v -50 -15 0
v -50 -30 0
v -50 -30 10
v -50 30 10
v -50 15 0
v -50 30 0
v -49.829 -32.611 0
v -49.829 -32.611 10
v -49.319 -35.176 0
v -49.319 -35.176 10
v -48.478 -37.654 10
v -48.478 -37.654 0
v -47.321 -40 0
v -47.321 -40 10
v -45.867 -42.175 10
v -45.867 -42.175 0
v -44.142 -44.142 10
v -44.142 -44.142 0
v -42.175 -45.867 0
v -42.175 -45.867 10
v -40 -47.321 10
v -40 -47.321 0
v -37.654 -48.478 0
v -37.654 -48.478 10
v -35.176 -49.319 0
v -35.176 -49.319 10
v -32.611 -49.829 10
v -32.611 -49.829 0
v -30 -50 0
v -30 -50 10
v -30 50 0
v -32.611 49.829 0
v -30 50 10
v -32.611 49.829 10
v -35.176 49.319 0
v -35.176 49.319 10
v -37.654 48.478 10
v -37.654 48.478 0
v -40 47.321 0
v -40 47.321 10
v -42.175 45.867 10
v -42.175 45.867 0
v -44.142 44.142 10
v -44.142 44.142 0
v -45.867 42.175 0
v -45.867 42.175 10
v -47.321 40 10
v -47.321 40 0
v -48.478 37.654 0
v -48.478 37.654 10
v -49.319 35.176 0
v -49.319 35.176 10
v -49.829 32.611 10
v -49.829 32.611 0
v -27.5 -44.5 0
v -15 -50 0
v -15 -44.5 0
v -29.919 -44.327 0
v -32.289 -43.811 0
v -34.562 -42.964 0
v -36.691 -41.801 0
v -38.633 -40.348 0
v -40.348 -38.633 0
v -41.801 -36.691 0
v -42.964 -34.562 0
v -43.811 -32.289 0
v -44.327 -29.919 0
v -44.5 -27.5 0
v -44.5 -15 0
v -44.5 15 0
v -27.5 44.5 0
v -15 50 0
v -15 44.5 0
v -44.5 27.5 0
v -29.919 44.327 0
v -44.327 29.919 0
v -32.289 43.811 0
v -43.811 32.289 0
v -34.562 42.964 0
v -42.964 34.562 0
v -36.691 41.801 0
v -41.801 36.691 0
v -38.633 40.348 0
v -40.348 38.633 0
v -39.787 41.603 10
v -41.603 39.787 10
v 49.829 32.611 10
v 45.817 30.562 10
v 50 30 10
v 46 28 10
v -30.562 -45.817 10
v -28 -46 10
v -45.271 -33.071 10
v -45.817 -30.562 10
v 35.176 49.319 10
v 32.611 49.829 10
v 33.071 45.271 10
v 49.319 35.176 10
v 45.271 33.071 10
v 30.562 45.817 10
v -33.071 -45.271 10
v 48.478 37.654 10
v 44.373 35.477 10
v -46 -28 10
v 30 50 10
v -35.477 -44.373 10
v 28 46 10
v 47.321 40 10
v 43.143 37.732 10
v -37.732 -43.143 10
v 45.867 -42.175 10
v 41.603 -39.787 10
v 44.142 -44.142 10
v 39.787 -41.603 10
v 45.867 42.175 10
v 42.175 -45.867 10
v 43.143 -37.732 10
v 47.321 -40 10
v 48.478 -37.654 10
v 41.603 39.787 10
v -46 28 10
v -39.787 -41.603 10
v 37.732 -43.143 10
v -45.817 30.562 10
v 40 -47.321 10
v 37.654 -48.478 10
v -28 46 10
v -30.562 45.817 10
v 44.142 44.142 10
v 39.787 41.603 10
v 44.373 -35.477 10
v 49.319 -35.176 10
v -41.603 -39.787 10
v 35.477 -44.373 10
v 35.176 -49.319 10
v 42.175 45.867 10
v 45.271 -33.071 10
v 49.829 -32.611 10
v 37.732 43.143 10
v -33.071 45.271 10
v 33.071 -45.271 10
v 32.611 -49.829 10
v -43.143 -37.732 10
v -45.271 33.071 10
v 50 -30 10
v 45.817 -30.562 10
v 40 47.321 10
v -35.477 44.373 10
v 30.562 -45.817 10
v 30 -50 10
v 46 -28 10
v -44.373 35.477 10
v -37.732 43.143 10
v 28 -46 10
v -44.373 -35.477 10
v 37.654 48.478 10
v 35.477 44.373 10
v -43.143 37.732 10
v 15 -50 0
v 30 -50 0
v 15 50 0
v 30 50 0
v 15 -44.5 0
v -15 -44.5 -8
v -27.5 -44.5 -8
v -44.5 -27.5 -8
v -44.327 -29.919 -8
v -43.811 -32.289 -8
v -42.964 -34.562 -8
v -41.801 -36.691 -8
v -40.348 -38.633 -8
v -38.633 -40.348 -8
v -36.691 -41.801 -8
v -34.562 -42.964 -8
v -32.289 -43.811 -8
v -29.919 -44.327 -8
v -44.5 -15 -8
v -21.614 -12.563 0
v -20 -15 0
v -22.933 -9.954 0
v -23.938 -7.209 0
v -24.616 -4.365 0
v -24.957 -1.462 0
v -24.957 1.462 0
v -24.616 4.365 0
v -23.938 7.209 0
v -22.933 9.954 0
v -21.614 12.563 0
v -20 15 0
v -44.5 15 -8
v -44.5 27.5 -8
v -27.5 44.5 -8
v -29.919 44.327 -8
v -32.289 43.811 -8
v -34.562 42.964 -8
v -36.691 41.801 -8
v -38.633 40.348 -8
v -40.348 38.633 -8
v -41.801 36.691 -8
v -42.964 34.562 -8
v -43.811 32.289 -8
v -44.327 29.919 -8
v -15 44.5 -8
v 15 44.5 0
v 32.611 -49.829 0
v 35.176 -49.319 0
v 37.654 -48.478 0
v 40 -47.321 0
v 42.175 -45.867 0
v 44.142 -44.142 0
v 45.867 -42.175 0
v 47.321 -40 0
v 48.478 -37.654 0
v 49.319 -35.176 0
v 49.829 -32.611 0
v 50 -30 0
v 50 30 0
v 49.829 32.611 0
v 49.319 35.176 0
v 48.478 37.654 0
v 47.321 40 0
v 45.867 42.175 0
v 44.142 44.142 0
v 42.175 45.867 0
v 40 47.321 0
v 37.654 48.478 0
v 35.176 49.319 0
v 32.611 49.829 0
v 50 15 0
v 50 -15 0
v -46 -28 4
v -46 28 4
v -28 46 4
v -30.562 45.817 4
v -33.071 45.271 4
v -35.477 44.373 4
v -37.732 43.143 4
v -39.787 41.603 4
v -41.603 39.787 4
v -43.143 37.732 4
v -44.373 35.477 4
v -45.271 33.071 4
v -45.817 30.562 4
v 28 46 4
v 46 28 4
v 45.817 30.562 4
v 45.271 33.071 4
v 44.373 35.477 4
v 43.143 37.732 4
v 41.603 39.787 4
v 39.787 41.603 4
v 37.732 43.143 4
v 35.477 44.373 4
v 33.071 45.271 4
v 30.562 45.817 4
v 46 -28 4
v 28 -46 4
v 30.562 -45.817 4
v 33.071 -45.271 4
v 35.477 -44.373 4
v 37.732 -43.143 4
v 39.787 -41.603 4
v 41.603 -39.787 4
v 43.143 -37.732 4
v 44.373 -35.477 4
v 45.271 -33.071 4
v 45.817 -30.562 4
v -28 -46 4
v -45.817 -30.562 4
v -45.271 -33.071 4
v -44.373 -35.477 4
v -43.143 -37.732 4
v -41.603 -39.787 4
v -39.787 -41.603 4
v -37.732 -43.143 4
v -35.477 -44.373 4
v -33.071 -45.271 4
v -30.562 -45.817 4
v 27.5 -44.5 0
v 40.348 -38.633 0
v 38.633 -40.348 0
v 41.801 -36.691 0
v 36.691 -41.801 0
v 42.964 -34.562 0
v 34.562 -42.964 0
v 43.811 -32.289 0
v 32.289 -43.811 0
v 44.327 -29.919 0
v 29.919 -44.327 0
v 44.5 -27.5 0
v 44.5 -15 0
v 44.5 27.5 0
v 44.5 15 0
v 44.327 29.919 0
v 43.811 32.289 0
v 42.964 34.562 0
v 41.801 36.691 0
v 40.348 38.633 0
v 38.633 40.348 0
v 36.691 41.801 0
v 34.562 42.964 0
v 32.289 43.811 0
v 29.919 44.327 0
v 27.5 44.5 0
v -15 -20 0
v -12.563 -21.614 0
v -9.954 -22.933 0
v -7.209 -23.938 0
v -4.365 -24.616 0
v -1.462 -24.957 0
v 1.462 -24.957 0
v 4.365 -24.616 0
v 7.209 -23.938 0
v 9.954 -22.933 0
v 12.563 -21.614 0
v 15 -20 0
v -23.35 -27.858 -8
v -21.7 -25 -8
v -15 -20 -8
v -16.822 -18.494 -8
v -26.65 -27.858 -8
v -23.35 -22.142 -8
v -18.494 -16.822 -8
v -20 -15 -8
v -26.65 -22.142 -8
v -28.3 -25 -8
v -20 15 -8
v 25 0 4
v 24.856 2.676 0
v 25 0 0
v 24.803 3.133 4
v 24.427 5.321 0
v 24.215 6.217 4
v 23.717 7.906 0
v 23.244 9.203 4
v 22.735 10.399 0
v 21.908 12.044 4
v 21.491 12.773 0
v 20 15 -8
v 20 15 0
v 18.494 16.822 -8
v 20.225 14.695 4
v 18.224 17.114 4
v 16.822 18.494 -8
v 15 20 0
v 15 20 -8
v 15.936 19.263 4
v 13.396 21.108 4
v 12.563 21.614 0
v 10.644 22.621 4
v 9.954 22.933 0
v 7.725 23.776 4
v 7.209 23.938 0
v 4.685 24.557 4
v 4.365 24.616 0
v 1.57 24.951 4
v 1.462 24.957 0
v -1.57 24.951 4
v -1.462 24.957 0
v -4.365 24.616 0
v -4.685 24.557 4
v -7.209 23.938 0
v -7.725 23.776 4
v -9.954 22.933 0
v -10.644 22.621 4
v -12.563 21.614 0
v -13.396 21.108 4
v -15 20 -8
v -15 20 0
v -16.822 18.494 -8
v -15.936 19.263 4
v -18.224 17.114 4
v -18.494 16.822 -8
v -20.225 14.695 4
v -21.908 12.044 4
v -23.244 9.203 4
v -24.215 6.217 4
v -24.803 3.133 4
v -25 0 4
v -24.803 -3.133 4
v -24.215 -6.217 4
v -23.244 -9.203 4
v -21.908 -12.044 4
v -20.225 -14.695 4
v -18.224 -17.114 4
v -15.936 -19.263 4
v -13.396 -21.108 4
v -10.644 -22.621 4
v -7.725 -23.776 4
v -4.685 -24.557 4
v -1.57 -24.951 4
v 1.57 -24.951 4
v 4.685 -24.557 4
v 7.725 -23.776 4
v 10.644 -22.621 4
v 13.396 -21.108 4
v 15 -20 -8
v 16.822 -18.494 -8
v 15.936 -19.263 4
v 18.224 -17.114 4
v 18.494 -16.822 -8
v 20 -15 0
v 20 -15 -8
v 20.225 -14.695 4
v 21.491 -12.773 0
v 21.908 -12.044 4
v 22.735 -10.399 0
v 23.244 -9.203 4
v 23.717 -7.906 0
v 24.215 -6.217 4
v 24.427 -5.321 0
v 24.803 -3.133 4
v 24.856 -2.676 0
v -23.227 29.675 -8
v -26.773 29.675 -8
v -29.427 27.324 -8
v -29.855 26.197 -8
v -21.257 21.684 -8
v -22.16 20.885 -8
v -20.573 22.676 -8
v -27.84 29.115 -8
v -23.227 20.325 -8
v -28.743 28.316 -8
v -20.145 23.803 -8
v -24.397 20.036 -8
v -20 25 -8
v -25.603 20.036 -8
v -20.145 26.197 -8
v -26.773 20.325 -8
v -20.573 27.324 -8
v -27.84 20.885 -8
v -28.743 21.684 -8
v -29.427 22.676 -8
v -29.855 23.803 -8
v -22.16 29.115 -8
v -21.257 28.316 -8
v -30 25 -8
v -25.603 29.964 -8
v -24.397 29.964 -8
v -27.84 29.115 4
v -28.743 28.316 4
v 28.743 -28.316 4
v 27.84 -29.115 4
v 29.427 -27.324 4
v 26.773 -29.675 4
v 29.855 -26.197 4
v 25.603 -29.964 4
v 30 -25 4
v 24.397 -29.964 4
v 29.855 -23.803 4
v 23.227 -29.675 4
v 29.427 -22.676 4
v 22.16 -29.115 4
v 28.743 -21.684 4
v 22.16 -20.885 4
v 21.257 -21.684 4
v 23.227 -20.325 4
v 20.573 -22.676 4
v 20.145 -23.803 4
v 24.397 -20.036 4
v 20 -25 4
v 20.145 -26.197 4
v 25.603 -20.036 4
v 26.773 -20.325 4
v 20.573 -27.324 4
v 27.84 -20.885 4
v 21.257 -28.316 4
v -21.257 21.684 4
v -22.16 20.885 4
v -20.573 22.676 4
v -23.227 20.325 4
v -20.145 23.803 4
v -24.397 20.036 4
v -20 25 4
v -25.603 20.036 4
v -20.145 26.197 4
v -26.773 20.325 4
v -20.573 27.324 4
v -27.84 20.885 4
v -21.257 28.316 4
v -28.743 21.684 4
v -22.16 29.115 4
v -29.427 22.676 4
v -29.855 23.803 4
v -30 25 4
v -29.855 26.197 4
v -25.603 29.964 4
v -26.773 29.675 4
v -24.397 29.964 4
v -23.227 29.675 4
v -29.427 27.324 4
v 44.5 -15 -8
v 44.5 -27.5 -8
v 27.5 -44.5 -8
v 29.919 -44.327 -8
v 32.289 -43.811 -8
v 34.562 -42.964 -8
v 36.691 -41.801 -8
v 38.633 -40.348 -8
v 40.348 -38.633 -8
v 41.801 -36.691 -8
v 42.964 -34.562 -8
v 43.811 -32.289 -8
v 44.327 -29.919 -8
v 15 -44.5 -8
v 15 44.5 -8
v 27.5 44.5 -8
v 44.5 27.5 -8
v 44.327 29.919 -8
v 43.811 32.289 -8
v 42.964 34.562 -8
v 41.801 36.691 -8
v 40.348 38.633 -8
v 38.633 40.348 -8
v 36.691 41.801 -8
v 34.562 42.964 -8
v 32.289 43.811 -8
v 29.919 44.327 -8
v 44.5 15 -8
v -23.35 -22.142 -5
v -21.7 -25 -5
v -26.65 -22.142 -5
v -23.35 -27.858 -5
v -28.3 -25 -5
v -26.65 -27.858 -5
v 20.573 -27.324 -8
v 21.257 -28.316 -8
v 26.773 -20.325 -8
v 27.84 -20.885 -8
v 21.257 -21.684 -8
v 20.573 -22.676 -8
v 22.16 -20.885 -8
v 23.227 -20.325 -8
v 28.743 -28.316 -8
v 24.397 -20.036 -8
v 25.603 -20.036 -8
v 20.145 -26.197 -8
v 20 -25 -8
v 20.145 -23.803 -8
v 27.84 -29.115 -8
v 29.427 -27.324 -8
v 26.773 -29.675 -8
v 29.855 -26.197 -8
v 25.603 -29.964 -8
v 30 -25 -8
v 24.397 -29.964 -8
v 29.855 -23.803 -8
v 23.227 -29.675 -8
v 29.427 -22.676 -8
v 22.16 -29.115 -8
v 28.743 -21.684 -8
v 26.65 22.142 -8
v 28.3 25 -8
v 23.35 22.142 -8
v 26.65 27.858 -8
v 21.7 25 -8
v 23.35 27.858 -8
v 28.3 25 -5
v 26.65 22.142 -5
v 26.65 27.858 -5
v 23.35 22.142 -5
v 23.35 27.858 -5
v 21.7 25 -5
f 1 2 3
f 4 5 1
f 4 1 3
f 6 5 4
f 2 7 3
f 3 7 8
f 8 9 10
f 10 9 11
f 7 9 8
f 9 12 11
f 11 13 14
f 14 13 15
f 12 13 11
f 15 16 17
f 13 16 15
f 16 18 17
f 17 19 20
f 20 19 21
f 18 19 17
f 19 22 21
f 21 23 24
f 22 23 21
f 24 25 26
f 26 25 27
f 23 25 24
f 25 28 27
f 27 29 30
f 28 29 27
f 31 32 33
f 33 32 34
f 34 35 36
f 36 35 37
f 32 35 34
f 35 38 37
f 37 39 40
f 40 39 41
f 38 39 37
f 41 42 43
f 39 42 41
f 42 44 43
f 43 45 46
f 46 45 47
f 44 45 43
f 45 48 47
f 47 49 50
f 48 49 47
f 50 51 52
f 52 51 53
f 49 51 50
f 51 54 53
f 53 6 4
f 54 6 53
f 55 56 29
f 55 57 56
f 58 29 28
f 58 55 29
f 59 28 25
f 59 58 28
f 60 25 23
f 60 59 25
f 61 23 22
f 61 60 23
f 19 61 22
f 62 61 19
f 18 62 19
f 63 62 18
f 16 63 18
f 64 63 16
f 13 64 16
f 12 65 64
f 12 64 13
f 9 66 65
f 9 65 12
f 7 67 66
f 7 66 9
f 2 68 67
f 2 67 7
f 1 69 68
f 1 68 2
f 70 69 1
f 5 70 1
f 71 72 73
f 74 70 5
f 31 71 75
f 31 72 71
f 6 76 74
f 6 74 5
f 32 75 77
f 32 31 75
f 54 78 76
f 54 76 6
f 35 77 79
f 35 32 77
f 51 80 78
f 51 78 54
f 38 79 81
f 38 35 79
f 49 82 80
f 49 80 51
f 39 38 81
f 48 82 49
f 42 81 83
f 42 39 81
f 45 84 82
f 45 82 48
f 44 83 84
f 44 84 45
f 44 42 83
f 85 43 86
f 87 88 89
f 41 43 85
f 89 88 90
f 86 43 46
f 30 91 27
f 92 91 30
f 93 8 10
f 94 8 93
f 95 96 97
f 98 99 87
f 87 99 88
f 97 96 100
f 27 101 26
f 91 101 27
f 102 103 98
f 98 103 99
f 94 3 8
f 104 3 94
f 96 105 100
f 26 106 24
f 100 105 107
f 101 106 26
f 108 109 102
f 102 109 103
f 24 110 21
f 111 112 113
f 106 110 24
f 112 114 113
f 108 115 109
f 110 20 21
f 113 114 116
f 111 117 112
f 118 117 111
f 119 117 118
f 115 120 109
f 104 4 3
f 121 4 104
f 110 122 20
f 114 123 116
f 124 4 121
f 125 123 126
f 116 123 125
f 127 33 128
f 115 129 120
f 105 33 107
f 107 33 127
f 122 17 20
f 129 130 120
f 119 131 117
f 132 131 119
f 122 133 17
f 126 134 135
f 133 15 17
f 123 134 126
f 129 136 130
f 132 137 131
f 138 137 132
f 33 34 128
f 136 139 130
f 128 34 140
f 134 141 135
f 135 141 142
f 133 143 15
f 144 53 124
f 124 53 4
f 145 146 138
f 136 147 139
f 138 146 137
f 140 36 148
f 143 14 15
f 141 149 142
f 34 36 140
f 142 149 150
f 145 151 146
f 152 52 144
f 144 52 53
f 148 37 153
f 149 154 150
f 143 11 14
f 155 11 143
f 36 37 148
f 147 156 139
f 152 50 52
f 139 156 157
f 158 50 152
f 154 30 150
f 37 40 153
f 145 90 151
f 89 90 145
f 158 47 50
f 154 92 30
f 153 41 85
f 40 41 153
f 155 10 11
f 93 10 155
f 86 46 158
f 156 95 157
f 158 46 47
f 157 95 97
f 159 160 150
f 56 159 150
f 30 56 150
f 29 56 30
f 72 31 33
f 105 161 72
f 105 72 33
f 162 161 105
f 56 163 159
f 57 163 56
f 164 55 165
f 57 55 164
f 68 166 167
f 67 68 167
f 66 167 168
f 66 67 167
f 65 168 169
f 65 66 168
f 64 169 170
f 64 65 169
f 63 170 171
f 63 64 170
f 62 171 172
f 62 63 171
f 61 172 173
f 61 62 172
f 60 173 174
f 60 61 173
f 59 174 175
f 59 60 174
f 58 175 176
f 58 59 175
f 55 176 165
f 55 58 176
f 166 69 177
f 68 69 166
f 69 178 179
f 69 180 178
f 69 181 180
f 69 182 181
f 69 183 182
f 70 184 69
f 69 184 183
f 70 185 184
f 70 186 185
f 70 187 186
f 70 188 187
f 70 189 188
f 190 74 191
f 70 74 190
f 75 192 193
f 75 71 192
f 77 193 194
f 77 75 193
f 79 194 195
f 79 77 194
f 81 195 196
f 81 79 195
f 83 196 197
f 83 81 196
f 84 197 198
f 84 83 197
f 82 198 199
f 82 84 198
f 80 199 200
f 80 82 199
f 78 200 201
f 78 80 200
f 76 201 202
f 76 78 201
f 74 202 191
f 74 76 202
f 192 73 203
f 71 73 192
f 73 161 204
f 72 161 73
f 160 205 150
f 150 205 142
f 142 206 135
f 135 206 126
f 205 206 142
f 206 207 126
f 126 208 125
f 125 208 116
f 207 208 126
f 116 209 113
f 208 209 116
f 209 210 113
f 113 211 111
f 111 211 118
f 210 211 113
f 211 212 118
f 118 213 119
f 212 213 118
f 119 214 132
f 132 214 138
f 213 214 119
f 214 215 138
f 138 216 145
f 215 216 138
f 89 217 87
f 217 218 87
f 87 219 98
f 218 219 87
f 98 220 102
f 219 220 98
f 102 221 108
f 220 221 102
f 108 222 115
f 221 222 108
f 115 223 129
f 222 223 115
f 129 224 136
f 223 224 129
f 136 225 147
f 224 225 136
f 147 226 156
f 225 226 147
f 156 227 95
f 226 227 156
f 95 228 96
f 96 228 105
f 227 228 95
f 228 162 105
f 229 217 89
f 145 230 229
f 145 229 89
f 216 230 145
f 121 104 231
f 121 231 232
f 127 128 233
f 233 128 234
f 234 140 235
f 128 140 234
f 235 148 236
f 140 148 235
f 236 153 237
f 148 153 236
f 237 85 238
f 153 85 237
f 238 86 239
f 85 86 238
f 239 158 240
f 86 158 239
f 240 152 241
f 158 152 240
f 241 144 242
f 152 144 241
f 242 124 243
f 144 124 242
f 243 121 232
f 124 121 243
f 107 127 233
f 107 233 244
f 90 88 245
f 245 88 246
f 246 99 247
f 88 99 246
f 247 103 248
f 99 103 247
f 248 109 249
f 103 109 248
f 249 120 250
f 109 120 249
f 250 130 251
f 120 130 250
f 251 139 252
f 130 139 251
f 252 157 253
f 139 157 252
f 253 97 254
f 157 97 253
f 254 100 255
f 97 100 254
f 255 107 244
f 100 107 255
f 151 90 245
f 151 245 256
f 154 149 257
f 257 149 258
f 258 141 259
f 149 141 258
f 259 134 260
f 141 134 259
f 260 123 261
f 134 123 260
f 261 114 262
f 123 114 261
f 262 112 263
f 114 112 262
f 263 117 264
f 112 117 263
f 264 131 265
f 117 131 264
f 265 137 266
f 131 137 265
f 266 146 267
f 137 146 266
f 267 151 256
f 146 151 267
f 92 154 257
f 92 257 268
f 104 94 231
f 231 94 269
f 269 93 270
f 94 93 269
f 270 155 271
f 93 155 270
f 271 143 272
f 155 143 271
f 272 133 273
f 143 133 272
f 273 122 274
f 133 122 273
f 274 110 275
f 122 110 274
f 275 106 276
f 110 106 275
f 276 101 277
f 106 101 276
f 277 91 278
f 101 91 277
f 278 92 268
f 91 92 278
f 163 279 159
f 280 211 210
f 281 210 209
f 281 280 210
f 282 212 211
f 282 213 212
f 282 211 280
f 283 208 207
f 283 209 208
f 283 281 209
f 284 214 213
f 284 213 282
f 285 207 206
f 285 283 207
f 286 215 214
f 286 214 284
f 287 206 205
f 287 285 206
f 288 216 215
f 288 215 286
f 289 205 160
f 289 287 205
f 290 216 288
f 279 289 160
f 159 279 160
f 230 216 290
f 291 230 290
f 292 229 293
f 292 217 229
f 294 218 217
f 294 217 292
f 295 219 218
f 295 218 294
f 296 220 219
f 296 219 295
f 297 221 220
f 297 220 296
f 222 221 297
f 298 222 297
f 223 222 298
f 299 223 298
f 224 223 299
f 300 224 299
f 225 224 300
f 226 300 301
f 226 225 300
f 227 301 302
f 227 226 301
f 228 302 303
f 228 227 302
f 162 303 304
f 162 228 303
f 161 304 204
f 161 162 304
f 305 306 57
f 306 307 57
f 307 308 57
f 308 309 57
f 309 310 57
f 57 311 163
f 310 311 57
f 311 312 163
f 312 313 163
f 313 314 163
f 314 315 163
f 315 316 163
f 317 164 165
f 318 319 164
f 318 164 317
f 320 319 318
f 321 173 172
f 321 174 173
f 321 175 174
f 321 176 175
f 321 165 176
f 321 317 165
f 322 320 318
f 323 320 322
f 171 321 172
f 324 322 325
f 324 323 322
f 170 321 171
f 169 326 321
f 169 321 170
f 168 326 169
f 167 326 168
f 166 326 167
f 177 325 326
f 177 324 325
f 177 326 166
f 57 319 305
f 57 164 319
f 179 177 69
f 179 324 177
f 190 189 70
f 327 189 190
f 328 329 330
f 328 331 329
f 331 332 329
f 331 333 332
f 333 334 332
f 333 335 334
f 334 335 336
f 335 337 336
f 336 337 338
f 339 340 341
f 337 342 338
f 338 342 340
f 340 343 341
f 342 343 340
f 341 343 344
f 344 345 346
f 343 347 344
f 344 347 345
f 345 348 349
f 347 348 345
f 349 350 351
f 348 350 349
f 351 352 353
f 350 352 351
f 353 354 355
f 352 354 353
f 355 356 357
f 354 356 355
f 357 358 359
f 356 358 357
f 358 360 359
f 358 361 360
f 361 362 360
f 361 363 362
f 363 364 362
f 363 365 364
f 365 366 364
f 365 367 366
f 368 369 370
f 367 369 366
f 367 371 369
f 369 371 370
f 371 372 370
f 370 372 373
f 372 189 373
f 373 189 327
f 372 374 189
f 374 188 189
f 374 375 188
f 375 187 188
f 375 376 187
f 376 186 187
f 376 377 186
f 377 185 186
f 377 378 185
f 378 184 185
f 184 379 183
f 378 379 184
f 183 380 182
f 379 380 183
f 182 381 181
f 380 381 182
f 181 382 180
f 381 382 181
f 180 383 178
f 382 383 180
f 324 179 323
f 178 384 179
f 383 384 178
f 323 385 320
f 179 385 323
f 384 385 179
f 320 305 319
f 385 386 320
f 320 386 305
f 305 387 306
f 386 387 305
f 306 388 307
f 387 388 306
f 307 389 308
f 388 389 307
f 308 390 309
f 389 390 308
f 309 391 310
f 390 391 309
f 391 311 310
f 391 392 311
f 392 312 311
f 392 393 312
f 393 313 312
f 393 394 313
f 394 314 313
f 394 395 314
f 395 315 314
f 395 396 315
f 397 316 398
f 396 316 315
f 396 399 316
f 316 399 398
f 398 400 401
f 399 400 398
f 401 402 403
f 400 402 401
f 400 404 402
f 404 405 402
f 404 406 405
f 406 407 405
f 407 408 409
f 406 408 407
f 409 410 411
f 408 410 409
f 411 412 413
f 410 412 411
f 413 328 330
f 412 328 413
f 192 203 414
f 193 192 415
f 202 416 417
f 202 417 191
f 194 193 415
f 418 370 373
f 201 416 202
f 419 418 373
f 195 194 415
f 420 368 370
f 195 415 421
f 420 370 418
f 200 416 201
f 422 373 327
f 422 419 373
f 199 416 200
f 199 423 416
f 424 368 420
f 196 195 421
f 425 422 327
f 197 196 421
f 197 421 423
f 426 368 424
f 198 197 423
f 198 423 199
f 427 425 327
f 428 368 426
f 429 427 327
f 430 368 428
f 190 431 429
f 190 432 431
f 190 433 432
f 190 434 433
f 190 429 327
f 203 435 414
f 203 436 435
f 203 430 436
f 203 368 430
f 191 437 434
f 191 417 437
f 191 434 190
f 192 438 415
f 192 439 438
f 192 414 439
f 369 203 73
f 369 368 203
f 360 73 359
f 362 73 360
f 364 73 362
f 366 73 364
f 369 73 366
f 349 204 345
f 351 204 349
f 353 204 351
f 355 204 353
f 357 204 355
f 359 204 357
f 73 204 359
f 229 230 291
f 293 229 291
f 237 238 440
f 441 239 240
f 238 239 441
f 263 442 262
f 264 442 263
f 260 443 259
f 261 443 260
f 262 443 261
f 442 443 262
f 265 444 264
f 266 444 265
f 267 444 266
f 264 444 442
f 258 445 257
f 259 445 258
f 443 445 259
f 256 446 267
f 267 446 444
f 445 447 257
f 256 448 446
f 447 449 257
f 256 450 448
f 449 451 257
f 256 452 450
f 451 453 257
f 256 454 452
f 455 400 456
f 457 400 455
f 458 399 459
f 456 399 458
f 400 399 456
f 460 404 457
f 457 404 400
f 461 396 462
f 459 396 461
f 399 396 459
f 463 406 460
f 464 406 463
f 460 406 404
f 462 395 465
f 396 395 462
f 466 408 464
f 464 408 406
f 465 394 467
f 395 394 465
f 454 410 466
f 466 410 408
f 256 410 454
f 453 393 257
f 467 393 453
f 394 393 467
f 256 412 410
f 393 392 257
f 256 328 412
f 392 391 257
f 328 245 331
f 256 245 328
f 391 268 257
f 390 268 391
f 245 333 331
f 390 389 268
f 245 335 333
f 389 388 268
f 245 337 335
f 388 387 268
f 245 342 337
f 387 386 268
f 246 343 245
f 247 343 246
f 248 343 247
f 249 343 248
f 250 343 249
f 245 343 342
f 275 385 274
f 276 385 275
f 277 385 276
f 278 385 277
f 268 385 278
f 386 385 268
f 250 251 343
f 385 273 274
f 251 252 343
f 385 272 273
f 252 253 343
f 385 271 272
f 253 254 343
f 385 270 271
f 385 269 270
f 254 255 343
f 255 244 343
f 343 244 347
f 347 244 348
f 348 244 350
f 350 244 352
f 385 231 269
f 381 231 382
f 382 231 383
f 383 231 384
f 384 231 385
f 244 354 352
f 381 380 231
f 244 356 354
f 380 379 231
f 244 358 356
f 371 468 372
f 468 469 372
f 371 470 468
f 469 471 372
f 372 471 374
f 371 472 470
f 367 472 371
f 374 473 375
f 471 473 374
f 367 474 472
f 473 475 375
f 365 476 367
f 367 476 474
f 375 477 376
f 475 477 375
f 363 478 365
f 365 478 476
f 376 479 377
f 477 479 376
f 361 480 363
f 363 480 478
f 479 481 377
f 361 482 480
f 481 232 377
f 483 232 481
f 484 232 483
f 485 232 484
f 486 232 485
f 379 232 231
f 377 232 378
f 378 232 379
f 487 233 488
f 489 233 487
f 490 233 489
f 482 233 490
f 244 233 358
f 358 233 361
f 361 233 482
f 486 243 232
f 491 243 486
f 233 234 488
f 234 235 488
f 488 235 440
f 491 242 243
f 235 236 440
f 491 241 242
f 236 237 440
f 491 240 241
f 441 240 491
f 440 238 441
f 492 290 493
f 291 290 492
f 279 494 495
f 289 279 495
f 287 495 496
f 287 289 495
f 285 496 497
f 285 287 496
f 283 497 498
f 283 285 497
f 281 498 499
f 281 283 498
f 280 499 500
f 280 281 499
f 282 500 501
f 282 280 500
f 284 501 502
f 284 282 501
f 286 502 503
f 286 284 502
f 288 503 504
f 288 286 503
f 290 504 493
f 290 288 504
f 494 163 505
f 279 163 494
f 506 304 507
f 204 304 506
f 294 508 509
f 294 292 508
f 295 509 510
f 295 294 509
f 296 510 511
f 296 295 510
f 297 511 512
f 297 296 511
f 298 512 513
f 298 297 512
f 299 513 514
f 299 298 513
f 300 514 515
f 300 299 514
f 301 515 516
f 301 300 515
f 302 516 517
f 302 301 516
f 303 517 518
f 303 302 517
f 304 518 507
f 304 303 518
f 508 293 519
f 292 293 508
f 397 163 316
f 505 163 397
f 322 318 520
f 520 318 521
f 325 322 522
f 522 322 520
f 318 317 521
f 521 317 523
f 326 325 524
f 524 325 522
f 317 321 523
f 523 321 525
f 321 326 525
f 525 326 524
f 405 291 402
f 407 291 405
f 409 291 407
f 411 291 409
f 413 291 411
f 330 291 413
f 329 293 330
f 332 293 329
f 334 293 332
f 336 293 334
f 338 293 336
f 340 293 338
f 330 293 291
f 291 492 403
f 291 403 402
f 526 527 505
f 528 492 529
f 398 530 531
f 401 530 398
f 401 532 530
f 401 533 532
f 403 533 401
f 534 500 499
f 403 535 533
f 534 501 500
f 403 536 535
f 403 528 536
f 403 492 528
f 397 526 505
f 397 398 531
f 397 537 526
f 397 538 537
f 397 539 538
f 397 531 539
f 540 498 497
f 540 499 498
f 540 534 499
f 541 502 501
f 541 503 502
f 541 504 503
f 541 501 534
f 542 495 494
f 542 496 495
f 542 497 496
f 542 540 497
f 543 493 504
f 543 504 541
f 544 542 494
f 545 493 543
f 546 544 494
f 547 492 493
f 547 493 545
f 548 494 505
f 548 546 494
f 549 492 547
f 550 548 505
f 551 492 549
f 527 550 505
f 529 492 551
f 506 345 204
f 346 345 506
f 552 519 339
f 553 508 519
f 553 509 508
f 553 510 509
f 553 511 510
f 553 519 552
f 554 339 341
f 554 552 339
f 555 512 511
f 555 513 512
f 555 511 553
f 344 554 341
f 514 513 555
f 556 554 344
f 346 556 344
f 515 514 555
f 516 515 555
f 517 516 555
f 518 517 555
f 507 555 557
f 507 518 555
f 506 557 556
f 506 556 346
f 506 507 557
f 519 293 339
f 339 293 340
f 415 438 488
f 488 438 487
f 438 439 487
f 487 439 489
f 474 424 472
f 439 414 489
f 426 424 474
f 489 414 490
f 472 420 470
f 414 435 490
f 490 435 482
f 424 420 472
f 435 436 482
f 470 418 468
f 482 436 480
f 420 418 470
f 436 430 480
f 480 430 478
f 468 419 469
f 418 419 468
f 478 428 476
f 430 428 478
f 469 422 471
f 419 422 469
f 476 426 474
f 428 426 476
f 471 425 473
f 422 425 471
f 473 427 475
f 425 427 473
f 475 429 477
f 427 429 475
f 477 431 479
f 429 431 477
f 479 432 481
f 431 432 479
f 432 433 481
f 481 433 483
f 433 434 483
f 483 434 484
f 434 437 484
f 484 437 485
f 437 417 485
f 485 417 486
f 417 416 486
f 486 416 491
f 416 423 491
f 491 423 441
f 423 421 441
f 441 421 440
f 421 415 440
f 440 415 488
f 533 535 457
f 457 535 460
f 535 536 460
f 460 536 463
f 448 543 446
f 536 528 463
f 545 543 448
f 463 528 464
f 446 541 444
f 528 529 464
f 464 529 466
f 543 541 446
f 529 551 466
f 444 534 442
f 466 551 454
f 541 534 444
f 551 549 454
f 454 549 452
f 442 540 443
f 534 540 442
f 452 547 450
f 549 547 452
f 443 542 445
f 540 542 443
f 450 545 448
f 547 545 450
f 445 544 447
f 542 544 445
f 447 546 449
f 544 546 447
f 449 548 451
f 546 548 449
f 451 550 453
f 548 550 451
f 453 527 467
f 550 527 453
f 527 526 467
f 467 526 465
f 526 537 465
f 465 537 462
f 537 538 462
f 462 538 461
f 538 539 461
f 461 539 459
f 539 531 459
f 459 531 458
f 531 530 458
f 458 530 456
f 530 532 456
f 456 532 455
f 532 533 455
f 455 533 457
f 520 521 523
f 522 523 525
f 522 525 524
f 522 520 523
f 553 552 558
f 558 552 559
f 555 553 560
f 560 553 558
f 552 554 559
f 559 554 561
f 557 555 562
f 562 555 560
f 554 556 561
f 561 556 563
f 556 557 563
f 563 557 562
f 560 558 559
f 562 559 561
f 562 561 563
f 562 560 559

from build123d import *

# Parameters (mm, degrees)
BOX_W           = 30
BOX_H           = 100
BOX_DEPTH       = 10
BOX001_W        = 100
BOX001_H        = 30
BOX001_DEPTH    = 10
CYLINDER_R      = 25
CYLINDER_DEPTH  = 22
PAD_DEPTH       = 10
PAD001_DEPTH    = 18
POCKET_DEPTH    = 6
POCKET001_DEPTH = 3
COPYSKETCH005_R = 5
POCKET002_DEPTH = 18.001


with BuildPart() as cubo:
    # Box → Box (new body)
    with BuildSketch(Plane(origin=(-15, -50, -10), x_dir=(1, 0, 0), z_dir=(0, 0, 1))):
        with Locations((15, 50)):
            Rectangle(BOX_W, BOX_H)
    extrude(amount=BOX_DEPTH)


with BuildPart() as cubo001:
    # Box001 → Box001 (new body)
    with BuildSketch(Plane(origin=(-50, -15, -10), x_dir=(1, 0, 0), z_dir=(0, 0, 1))):
        with Locations((50, 15)):
            Rectangle(BOX001_W, BOX001_H)
    extrude(amount=BOX001_DEPTH)


with BuildPart() as fusion:
    # Cylinder → Cylinder (new body)
    with BuildSketch(Plane.XY.offset(-10)):
        Circle(CYLINDER_R)
    extrude(amount=CYLINDER_DEPTH)

    # Fusion: union Cubo, Cubo001
    add(cubo.part)
    add(cubo001.part)


with BuildPart() as cut:
    # Sketch → Pad (new body)
    with BuildSketch(Plane.XY):
        with BuildLine():
            Line((-30, 50), (30, 50))
            ThreePointArc((50, 30), (44.142136, 44.142136), (30, 50))
            Line((50, 30), (50, -30))
            ThreePointArc((30, -50), (44.142136, -44.142136), (50, -30))
            Line((30, -50), (-30, -50))
            ThreePointArc((-50, -30), (-44.142136, -44.142136), (-30, -50))
            Line((-50, -30), (-50, 30))
            ThreePointArc((-30, 50), (-44.142136, 44.142136), (-50, 30))
        make_face()
    extrude(amount=PAD_DEPTH)

    # Sketch001 (on Face10 of Pad) → Pad001 (join)
    with BuildSketch(Plane.XY.offset(10)):
        with BuildLine():
            Line((-27.5, 44.5), (27.5, 44.5))
            ThreePointArc((44.5, 27.5), (39.520815, 39.520815), (27.5, 44.5))
            Line((44.5, 27.5), (44.5, -27.5))
            ThreePointArc((27.5, -44.5), (39.520815, -39.520815), (44.5, -27.5))
            Line((27.5, -44.5), (-27.5, -44.5))
            ThreePointArc((-44.5, -27.5), (-39.520815, -39.520815), (-27.5, -44.5))
            Line((-44.5, -27.5), (-44.5, 27.5))
            ThreePointArc((-27.5, 44.5), (-39.520815, 39.520815), (-44.5, 27.5))
        make_face()
    extrude(amount=-PAD001_DEPTH)

    # CopySketch003 → Pocket (cut)
    with BuildSketch(Plane.XY.offset(10)):
        with BuildLine():
            Line((-28, 46), (28, 46))
            ThreePointArc((46, 28), (40.727922, 40.727922), (28, 46))
            Line((46, 28), (46, -28))
            ThreePointArc((28, -46), (40.727922, -40.727922), (46, -28))
            Line((28, -46), (-28, -46))
            ThreePointArc((-46, -28), (-40.727922, -40.727922), (-28, -46))
            Line((-46, -28), (-46, 28))
            ThreePointArc((-28, 46), (-40.727922, 40.727922), (-46, 28))
        make_face()
    extrude(amount=-POCKET_DEPTH, mode=Mode.SUBTRACT)

    # Sketch002 (on Face27 of Pocket) → Pocket001 (cut)
    with BuildSketch(Plane(origin=(0, 0, -8), x_dir=(1, 0, 0), z_dir=(0, 0, -1))):
        Polygon((-23.35, 22.142116), (-21.7, 25), (-23.35, 27.857884), (-26.65, 27.857884), (-28.3, 25), (-26.65, 22.142116), align=None)
        Polygon((28.3, -25), (26.65, -22.142116), (23.35, -22.142116), (21.7, -25), (23.35, -27.857884), (26.65, -27.857884), align=None)
    extrude(amount=-POCKET001_DEPTH, mode=Mode.SUBTRACT)

    # CopySketch005 → Pocket002 (cut, through all)
    with BuildSketch(Plane(origin=(0, 0, -8), x_dir=(1, 0, 0), z_dir=(0, 0, -1))):
        with Locations((25, 25)):
            Circle(COPYSKETCH005_R)
        with Locations((-25, -25)):
            Circle(COPYSKETCH005_R)
    extrude(amount=-POCKET002_DEPTH, mode=Mode.SUBTRACT)

    # Cut: cut Fusion
    add(fusion.part, mode=Mode.SUBTRACT)


solid = cut.part
